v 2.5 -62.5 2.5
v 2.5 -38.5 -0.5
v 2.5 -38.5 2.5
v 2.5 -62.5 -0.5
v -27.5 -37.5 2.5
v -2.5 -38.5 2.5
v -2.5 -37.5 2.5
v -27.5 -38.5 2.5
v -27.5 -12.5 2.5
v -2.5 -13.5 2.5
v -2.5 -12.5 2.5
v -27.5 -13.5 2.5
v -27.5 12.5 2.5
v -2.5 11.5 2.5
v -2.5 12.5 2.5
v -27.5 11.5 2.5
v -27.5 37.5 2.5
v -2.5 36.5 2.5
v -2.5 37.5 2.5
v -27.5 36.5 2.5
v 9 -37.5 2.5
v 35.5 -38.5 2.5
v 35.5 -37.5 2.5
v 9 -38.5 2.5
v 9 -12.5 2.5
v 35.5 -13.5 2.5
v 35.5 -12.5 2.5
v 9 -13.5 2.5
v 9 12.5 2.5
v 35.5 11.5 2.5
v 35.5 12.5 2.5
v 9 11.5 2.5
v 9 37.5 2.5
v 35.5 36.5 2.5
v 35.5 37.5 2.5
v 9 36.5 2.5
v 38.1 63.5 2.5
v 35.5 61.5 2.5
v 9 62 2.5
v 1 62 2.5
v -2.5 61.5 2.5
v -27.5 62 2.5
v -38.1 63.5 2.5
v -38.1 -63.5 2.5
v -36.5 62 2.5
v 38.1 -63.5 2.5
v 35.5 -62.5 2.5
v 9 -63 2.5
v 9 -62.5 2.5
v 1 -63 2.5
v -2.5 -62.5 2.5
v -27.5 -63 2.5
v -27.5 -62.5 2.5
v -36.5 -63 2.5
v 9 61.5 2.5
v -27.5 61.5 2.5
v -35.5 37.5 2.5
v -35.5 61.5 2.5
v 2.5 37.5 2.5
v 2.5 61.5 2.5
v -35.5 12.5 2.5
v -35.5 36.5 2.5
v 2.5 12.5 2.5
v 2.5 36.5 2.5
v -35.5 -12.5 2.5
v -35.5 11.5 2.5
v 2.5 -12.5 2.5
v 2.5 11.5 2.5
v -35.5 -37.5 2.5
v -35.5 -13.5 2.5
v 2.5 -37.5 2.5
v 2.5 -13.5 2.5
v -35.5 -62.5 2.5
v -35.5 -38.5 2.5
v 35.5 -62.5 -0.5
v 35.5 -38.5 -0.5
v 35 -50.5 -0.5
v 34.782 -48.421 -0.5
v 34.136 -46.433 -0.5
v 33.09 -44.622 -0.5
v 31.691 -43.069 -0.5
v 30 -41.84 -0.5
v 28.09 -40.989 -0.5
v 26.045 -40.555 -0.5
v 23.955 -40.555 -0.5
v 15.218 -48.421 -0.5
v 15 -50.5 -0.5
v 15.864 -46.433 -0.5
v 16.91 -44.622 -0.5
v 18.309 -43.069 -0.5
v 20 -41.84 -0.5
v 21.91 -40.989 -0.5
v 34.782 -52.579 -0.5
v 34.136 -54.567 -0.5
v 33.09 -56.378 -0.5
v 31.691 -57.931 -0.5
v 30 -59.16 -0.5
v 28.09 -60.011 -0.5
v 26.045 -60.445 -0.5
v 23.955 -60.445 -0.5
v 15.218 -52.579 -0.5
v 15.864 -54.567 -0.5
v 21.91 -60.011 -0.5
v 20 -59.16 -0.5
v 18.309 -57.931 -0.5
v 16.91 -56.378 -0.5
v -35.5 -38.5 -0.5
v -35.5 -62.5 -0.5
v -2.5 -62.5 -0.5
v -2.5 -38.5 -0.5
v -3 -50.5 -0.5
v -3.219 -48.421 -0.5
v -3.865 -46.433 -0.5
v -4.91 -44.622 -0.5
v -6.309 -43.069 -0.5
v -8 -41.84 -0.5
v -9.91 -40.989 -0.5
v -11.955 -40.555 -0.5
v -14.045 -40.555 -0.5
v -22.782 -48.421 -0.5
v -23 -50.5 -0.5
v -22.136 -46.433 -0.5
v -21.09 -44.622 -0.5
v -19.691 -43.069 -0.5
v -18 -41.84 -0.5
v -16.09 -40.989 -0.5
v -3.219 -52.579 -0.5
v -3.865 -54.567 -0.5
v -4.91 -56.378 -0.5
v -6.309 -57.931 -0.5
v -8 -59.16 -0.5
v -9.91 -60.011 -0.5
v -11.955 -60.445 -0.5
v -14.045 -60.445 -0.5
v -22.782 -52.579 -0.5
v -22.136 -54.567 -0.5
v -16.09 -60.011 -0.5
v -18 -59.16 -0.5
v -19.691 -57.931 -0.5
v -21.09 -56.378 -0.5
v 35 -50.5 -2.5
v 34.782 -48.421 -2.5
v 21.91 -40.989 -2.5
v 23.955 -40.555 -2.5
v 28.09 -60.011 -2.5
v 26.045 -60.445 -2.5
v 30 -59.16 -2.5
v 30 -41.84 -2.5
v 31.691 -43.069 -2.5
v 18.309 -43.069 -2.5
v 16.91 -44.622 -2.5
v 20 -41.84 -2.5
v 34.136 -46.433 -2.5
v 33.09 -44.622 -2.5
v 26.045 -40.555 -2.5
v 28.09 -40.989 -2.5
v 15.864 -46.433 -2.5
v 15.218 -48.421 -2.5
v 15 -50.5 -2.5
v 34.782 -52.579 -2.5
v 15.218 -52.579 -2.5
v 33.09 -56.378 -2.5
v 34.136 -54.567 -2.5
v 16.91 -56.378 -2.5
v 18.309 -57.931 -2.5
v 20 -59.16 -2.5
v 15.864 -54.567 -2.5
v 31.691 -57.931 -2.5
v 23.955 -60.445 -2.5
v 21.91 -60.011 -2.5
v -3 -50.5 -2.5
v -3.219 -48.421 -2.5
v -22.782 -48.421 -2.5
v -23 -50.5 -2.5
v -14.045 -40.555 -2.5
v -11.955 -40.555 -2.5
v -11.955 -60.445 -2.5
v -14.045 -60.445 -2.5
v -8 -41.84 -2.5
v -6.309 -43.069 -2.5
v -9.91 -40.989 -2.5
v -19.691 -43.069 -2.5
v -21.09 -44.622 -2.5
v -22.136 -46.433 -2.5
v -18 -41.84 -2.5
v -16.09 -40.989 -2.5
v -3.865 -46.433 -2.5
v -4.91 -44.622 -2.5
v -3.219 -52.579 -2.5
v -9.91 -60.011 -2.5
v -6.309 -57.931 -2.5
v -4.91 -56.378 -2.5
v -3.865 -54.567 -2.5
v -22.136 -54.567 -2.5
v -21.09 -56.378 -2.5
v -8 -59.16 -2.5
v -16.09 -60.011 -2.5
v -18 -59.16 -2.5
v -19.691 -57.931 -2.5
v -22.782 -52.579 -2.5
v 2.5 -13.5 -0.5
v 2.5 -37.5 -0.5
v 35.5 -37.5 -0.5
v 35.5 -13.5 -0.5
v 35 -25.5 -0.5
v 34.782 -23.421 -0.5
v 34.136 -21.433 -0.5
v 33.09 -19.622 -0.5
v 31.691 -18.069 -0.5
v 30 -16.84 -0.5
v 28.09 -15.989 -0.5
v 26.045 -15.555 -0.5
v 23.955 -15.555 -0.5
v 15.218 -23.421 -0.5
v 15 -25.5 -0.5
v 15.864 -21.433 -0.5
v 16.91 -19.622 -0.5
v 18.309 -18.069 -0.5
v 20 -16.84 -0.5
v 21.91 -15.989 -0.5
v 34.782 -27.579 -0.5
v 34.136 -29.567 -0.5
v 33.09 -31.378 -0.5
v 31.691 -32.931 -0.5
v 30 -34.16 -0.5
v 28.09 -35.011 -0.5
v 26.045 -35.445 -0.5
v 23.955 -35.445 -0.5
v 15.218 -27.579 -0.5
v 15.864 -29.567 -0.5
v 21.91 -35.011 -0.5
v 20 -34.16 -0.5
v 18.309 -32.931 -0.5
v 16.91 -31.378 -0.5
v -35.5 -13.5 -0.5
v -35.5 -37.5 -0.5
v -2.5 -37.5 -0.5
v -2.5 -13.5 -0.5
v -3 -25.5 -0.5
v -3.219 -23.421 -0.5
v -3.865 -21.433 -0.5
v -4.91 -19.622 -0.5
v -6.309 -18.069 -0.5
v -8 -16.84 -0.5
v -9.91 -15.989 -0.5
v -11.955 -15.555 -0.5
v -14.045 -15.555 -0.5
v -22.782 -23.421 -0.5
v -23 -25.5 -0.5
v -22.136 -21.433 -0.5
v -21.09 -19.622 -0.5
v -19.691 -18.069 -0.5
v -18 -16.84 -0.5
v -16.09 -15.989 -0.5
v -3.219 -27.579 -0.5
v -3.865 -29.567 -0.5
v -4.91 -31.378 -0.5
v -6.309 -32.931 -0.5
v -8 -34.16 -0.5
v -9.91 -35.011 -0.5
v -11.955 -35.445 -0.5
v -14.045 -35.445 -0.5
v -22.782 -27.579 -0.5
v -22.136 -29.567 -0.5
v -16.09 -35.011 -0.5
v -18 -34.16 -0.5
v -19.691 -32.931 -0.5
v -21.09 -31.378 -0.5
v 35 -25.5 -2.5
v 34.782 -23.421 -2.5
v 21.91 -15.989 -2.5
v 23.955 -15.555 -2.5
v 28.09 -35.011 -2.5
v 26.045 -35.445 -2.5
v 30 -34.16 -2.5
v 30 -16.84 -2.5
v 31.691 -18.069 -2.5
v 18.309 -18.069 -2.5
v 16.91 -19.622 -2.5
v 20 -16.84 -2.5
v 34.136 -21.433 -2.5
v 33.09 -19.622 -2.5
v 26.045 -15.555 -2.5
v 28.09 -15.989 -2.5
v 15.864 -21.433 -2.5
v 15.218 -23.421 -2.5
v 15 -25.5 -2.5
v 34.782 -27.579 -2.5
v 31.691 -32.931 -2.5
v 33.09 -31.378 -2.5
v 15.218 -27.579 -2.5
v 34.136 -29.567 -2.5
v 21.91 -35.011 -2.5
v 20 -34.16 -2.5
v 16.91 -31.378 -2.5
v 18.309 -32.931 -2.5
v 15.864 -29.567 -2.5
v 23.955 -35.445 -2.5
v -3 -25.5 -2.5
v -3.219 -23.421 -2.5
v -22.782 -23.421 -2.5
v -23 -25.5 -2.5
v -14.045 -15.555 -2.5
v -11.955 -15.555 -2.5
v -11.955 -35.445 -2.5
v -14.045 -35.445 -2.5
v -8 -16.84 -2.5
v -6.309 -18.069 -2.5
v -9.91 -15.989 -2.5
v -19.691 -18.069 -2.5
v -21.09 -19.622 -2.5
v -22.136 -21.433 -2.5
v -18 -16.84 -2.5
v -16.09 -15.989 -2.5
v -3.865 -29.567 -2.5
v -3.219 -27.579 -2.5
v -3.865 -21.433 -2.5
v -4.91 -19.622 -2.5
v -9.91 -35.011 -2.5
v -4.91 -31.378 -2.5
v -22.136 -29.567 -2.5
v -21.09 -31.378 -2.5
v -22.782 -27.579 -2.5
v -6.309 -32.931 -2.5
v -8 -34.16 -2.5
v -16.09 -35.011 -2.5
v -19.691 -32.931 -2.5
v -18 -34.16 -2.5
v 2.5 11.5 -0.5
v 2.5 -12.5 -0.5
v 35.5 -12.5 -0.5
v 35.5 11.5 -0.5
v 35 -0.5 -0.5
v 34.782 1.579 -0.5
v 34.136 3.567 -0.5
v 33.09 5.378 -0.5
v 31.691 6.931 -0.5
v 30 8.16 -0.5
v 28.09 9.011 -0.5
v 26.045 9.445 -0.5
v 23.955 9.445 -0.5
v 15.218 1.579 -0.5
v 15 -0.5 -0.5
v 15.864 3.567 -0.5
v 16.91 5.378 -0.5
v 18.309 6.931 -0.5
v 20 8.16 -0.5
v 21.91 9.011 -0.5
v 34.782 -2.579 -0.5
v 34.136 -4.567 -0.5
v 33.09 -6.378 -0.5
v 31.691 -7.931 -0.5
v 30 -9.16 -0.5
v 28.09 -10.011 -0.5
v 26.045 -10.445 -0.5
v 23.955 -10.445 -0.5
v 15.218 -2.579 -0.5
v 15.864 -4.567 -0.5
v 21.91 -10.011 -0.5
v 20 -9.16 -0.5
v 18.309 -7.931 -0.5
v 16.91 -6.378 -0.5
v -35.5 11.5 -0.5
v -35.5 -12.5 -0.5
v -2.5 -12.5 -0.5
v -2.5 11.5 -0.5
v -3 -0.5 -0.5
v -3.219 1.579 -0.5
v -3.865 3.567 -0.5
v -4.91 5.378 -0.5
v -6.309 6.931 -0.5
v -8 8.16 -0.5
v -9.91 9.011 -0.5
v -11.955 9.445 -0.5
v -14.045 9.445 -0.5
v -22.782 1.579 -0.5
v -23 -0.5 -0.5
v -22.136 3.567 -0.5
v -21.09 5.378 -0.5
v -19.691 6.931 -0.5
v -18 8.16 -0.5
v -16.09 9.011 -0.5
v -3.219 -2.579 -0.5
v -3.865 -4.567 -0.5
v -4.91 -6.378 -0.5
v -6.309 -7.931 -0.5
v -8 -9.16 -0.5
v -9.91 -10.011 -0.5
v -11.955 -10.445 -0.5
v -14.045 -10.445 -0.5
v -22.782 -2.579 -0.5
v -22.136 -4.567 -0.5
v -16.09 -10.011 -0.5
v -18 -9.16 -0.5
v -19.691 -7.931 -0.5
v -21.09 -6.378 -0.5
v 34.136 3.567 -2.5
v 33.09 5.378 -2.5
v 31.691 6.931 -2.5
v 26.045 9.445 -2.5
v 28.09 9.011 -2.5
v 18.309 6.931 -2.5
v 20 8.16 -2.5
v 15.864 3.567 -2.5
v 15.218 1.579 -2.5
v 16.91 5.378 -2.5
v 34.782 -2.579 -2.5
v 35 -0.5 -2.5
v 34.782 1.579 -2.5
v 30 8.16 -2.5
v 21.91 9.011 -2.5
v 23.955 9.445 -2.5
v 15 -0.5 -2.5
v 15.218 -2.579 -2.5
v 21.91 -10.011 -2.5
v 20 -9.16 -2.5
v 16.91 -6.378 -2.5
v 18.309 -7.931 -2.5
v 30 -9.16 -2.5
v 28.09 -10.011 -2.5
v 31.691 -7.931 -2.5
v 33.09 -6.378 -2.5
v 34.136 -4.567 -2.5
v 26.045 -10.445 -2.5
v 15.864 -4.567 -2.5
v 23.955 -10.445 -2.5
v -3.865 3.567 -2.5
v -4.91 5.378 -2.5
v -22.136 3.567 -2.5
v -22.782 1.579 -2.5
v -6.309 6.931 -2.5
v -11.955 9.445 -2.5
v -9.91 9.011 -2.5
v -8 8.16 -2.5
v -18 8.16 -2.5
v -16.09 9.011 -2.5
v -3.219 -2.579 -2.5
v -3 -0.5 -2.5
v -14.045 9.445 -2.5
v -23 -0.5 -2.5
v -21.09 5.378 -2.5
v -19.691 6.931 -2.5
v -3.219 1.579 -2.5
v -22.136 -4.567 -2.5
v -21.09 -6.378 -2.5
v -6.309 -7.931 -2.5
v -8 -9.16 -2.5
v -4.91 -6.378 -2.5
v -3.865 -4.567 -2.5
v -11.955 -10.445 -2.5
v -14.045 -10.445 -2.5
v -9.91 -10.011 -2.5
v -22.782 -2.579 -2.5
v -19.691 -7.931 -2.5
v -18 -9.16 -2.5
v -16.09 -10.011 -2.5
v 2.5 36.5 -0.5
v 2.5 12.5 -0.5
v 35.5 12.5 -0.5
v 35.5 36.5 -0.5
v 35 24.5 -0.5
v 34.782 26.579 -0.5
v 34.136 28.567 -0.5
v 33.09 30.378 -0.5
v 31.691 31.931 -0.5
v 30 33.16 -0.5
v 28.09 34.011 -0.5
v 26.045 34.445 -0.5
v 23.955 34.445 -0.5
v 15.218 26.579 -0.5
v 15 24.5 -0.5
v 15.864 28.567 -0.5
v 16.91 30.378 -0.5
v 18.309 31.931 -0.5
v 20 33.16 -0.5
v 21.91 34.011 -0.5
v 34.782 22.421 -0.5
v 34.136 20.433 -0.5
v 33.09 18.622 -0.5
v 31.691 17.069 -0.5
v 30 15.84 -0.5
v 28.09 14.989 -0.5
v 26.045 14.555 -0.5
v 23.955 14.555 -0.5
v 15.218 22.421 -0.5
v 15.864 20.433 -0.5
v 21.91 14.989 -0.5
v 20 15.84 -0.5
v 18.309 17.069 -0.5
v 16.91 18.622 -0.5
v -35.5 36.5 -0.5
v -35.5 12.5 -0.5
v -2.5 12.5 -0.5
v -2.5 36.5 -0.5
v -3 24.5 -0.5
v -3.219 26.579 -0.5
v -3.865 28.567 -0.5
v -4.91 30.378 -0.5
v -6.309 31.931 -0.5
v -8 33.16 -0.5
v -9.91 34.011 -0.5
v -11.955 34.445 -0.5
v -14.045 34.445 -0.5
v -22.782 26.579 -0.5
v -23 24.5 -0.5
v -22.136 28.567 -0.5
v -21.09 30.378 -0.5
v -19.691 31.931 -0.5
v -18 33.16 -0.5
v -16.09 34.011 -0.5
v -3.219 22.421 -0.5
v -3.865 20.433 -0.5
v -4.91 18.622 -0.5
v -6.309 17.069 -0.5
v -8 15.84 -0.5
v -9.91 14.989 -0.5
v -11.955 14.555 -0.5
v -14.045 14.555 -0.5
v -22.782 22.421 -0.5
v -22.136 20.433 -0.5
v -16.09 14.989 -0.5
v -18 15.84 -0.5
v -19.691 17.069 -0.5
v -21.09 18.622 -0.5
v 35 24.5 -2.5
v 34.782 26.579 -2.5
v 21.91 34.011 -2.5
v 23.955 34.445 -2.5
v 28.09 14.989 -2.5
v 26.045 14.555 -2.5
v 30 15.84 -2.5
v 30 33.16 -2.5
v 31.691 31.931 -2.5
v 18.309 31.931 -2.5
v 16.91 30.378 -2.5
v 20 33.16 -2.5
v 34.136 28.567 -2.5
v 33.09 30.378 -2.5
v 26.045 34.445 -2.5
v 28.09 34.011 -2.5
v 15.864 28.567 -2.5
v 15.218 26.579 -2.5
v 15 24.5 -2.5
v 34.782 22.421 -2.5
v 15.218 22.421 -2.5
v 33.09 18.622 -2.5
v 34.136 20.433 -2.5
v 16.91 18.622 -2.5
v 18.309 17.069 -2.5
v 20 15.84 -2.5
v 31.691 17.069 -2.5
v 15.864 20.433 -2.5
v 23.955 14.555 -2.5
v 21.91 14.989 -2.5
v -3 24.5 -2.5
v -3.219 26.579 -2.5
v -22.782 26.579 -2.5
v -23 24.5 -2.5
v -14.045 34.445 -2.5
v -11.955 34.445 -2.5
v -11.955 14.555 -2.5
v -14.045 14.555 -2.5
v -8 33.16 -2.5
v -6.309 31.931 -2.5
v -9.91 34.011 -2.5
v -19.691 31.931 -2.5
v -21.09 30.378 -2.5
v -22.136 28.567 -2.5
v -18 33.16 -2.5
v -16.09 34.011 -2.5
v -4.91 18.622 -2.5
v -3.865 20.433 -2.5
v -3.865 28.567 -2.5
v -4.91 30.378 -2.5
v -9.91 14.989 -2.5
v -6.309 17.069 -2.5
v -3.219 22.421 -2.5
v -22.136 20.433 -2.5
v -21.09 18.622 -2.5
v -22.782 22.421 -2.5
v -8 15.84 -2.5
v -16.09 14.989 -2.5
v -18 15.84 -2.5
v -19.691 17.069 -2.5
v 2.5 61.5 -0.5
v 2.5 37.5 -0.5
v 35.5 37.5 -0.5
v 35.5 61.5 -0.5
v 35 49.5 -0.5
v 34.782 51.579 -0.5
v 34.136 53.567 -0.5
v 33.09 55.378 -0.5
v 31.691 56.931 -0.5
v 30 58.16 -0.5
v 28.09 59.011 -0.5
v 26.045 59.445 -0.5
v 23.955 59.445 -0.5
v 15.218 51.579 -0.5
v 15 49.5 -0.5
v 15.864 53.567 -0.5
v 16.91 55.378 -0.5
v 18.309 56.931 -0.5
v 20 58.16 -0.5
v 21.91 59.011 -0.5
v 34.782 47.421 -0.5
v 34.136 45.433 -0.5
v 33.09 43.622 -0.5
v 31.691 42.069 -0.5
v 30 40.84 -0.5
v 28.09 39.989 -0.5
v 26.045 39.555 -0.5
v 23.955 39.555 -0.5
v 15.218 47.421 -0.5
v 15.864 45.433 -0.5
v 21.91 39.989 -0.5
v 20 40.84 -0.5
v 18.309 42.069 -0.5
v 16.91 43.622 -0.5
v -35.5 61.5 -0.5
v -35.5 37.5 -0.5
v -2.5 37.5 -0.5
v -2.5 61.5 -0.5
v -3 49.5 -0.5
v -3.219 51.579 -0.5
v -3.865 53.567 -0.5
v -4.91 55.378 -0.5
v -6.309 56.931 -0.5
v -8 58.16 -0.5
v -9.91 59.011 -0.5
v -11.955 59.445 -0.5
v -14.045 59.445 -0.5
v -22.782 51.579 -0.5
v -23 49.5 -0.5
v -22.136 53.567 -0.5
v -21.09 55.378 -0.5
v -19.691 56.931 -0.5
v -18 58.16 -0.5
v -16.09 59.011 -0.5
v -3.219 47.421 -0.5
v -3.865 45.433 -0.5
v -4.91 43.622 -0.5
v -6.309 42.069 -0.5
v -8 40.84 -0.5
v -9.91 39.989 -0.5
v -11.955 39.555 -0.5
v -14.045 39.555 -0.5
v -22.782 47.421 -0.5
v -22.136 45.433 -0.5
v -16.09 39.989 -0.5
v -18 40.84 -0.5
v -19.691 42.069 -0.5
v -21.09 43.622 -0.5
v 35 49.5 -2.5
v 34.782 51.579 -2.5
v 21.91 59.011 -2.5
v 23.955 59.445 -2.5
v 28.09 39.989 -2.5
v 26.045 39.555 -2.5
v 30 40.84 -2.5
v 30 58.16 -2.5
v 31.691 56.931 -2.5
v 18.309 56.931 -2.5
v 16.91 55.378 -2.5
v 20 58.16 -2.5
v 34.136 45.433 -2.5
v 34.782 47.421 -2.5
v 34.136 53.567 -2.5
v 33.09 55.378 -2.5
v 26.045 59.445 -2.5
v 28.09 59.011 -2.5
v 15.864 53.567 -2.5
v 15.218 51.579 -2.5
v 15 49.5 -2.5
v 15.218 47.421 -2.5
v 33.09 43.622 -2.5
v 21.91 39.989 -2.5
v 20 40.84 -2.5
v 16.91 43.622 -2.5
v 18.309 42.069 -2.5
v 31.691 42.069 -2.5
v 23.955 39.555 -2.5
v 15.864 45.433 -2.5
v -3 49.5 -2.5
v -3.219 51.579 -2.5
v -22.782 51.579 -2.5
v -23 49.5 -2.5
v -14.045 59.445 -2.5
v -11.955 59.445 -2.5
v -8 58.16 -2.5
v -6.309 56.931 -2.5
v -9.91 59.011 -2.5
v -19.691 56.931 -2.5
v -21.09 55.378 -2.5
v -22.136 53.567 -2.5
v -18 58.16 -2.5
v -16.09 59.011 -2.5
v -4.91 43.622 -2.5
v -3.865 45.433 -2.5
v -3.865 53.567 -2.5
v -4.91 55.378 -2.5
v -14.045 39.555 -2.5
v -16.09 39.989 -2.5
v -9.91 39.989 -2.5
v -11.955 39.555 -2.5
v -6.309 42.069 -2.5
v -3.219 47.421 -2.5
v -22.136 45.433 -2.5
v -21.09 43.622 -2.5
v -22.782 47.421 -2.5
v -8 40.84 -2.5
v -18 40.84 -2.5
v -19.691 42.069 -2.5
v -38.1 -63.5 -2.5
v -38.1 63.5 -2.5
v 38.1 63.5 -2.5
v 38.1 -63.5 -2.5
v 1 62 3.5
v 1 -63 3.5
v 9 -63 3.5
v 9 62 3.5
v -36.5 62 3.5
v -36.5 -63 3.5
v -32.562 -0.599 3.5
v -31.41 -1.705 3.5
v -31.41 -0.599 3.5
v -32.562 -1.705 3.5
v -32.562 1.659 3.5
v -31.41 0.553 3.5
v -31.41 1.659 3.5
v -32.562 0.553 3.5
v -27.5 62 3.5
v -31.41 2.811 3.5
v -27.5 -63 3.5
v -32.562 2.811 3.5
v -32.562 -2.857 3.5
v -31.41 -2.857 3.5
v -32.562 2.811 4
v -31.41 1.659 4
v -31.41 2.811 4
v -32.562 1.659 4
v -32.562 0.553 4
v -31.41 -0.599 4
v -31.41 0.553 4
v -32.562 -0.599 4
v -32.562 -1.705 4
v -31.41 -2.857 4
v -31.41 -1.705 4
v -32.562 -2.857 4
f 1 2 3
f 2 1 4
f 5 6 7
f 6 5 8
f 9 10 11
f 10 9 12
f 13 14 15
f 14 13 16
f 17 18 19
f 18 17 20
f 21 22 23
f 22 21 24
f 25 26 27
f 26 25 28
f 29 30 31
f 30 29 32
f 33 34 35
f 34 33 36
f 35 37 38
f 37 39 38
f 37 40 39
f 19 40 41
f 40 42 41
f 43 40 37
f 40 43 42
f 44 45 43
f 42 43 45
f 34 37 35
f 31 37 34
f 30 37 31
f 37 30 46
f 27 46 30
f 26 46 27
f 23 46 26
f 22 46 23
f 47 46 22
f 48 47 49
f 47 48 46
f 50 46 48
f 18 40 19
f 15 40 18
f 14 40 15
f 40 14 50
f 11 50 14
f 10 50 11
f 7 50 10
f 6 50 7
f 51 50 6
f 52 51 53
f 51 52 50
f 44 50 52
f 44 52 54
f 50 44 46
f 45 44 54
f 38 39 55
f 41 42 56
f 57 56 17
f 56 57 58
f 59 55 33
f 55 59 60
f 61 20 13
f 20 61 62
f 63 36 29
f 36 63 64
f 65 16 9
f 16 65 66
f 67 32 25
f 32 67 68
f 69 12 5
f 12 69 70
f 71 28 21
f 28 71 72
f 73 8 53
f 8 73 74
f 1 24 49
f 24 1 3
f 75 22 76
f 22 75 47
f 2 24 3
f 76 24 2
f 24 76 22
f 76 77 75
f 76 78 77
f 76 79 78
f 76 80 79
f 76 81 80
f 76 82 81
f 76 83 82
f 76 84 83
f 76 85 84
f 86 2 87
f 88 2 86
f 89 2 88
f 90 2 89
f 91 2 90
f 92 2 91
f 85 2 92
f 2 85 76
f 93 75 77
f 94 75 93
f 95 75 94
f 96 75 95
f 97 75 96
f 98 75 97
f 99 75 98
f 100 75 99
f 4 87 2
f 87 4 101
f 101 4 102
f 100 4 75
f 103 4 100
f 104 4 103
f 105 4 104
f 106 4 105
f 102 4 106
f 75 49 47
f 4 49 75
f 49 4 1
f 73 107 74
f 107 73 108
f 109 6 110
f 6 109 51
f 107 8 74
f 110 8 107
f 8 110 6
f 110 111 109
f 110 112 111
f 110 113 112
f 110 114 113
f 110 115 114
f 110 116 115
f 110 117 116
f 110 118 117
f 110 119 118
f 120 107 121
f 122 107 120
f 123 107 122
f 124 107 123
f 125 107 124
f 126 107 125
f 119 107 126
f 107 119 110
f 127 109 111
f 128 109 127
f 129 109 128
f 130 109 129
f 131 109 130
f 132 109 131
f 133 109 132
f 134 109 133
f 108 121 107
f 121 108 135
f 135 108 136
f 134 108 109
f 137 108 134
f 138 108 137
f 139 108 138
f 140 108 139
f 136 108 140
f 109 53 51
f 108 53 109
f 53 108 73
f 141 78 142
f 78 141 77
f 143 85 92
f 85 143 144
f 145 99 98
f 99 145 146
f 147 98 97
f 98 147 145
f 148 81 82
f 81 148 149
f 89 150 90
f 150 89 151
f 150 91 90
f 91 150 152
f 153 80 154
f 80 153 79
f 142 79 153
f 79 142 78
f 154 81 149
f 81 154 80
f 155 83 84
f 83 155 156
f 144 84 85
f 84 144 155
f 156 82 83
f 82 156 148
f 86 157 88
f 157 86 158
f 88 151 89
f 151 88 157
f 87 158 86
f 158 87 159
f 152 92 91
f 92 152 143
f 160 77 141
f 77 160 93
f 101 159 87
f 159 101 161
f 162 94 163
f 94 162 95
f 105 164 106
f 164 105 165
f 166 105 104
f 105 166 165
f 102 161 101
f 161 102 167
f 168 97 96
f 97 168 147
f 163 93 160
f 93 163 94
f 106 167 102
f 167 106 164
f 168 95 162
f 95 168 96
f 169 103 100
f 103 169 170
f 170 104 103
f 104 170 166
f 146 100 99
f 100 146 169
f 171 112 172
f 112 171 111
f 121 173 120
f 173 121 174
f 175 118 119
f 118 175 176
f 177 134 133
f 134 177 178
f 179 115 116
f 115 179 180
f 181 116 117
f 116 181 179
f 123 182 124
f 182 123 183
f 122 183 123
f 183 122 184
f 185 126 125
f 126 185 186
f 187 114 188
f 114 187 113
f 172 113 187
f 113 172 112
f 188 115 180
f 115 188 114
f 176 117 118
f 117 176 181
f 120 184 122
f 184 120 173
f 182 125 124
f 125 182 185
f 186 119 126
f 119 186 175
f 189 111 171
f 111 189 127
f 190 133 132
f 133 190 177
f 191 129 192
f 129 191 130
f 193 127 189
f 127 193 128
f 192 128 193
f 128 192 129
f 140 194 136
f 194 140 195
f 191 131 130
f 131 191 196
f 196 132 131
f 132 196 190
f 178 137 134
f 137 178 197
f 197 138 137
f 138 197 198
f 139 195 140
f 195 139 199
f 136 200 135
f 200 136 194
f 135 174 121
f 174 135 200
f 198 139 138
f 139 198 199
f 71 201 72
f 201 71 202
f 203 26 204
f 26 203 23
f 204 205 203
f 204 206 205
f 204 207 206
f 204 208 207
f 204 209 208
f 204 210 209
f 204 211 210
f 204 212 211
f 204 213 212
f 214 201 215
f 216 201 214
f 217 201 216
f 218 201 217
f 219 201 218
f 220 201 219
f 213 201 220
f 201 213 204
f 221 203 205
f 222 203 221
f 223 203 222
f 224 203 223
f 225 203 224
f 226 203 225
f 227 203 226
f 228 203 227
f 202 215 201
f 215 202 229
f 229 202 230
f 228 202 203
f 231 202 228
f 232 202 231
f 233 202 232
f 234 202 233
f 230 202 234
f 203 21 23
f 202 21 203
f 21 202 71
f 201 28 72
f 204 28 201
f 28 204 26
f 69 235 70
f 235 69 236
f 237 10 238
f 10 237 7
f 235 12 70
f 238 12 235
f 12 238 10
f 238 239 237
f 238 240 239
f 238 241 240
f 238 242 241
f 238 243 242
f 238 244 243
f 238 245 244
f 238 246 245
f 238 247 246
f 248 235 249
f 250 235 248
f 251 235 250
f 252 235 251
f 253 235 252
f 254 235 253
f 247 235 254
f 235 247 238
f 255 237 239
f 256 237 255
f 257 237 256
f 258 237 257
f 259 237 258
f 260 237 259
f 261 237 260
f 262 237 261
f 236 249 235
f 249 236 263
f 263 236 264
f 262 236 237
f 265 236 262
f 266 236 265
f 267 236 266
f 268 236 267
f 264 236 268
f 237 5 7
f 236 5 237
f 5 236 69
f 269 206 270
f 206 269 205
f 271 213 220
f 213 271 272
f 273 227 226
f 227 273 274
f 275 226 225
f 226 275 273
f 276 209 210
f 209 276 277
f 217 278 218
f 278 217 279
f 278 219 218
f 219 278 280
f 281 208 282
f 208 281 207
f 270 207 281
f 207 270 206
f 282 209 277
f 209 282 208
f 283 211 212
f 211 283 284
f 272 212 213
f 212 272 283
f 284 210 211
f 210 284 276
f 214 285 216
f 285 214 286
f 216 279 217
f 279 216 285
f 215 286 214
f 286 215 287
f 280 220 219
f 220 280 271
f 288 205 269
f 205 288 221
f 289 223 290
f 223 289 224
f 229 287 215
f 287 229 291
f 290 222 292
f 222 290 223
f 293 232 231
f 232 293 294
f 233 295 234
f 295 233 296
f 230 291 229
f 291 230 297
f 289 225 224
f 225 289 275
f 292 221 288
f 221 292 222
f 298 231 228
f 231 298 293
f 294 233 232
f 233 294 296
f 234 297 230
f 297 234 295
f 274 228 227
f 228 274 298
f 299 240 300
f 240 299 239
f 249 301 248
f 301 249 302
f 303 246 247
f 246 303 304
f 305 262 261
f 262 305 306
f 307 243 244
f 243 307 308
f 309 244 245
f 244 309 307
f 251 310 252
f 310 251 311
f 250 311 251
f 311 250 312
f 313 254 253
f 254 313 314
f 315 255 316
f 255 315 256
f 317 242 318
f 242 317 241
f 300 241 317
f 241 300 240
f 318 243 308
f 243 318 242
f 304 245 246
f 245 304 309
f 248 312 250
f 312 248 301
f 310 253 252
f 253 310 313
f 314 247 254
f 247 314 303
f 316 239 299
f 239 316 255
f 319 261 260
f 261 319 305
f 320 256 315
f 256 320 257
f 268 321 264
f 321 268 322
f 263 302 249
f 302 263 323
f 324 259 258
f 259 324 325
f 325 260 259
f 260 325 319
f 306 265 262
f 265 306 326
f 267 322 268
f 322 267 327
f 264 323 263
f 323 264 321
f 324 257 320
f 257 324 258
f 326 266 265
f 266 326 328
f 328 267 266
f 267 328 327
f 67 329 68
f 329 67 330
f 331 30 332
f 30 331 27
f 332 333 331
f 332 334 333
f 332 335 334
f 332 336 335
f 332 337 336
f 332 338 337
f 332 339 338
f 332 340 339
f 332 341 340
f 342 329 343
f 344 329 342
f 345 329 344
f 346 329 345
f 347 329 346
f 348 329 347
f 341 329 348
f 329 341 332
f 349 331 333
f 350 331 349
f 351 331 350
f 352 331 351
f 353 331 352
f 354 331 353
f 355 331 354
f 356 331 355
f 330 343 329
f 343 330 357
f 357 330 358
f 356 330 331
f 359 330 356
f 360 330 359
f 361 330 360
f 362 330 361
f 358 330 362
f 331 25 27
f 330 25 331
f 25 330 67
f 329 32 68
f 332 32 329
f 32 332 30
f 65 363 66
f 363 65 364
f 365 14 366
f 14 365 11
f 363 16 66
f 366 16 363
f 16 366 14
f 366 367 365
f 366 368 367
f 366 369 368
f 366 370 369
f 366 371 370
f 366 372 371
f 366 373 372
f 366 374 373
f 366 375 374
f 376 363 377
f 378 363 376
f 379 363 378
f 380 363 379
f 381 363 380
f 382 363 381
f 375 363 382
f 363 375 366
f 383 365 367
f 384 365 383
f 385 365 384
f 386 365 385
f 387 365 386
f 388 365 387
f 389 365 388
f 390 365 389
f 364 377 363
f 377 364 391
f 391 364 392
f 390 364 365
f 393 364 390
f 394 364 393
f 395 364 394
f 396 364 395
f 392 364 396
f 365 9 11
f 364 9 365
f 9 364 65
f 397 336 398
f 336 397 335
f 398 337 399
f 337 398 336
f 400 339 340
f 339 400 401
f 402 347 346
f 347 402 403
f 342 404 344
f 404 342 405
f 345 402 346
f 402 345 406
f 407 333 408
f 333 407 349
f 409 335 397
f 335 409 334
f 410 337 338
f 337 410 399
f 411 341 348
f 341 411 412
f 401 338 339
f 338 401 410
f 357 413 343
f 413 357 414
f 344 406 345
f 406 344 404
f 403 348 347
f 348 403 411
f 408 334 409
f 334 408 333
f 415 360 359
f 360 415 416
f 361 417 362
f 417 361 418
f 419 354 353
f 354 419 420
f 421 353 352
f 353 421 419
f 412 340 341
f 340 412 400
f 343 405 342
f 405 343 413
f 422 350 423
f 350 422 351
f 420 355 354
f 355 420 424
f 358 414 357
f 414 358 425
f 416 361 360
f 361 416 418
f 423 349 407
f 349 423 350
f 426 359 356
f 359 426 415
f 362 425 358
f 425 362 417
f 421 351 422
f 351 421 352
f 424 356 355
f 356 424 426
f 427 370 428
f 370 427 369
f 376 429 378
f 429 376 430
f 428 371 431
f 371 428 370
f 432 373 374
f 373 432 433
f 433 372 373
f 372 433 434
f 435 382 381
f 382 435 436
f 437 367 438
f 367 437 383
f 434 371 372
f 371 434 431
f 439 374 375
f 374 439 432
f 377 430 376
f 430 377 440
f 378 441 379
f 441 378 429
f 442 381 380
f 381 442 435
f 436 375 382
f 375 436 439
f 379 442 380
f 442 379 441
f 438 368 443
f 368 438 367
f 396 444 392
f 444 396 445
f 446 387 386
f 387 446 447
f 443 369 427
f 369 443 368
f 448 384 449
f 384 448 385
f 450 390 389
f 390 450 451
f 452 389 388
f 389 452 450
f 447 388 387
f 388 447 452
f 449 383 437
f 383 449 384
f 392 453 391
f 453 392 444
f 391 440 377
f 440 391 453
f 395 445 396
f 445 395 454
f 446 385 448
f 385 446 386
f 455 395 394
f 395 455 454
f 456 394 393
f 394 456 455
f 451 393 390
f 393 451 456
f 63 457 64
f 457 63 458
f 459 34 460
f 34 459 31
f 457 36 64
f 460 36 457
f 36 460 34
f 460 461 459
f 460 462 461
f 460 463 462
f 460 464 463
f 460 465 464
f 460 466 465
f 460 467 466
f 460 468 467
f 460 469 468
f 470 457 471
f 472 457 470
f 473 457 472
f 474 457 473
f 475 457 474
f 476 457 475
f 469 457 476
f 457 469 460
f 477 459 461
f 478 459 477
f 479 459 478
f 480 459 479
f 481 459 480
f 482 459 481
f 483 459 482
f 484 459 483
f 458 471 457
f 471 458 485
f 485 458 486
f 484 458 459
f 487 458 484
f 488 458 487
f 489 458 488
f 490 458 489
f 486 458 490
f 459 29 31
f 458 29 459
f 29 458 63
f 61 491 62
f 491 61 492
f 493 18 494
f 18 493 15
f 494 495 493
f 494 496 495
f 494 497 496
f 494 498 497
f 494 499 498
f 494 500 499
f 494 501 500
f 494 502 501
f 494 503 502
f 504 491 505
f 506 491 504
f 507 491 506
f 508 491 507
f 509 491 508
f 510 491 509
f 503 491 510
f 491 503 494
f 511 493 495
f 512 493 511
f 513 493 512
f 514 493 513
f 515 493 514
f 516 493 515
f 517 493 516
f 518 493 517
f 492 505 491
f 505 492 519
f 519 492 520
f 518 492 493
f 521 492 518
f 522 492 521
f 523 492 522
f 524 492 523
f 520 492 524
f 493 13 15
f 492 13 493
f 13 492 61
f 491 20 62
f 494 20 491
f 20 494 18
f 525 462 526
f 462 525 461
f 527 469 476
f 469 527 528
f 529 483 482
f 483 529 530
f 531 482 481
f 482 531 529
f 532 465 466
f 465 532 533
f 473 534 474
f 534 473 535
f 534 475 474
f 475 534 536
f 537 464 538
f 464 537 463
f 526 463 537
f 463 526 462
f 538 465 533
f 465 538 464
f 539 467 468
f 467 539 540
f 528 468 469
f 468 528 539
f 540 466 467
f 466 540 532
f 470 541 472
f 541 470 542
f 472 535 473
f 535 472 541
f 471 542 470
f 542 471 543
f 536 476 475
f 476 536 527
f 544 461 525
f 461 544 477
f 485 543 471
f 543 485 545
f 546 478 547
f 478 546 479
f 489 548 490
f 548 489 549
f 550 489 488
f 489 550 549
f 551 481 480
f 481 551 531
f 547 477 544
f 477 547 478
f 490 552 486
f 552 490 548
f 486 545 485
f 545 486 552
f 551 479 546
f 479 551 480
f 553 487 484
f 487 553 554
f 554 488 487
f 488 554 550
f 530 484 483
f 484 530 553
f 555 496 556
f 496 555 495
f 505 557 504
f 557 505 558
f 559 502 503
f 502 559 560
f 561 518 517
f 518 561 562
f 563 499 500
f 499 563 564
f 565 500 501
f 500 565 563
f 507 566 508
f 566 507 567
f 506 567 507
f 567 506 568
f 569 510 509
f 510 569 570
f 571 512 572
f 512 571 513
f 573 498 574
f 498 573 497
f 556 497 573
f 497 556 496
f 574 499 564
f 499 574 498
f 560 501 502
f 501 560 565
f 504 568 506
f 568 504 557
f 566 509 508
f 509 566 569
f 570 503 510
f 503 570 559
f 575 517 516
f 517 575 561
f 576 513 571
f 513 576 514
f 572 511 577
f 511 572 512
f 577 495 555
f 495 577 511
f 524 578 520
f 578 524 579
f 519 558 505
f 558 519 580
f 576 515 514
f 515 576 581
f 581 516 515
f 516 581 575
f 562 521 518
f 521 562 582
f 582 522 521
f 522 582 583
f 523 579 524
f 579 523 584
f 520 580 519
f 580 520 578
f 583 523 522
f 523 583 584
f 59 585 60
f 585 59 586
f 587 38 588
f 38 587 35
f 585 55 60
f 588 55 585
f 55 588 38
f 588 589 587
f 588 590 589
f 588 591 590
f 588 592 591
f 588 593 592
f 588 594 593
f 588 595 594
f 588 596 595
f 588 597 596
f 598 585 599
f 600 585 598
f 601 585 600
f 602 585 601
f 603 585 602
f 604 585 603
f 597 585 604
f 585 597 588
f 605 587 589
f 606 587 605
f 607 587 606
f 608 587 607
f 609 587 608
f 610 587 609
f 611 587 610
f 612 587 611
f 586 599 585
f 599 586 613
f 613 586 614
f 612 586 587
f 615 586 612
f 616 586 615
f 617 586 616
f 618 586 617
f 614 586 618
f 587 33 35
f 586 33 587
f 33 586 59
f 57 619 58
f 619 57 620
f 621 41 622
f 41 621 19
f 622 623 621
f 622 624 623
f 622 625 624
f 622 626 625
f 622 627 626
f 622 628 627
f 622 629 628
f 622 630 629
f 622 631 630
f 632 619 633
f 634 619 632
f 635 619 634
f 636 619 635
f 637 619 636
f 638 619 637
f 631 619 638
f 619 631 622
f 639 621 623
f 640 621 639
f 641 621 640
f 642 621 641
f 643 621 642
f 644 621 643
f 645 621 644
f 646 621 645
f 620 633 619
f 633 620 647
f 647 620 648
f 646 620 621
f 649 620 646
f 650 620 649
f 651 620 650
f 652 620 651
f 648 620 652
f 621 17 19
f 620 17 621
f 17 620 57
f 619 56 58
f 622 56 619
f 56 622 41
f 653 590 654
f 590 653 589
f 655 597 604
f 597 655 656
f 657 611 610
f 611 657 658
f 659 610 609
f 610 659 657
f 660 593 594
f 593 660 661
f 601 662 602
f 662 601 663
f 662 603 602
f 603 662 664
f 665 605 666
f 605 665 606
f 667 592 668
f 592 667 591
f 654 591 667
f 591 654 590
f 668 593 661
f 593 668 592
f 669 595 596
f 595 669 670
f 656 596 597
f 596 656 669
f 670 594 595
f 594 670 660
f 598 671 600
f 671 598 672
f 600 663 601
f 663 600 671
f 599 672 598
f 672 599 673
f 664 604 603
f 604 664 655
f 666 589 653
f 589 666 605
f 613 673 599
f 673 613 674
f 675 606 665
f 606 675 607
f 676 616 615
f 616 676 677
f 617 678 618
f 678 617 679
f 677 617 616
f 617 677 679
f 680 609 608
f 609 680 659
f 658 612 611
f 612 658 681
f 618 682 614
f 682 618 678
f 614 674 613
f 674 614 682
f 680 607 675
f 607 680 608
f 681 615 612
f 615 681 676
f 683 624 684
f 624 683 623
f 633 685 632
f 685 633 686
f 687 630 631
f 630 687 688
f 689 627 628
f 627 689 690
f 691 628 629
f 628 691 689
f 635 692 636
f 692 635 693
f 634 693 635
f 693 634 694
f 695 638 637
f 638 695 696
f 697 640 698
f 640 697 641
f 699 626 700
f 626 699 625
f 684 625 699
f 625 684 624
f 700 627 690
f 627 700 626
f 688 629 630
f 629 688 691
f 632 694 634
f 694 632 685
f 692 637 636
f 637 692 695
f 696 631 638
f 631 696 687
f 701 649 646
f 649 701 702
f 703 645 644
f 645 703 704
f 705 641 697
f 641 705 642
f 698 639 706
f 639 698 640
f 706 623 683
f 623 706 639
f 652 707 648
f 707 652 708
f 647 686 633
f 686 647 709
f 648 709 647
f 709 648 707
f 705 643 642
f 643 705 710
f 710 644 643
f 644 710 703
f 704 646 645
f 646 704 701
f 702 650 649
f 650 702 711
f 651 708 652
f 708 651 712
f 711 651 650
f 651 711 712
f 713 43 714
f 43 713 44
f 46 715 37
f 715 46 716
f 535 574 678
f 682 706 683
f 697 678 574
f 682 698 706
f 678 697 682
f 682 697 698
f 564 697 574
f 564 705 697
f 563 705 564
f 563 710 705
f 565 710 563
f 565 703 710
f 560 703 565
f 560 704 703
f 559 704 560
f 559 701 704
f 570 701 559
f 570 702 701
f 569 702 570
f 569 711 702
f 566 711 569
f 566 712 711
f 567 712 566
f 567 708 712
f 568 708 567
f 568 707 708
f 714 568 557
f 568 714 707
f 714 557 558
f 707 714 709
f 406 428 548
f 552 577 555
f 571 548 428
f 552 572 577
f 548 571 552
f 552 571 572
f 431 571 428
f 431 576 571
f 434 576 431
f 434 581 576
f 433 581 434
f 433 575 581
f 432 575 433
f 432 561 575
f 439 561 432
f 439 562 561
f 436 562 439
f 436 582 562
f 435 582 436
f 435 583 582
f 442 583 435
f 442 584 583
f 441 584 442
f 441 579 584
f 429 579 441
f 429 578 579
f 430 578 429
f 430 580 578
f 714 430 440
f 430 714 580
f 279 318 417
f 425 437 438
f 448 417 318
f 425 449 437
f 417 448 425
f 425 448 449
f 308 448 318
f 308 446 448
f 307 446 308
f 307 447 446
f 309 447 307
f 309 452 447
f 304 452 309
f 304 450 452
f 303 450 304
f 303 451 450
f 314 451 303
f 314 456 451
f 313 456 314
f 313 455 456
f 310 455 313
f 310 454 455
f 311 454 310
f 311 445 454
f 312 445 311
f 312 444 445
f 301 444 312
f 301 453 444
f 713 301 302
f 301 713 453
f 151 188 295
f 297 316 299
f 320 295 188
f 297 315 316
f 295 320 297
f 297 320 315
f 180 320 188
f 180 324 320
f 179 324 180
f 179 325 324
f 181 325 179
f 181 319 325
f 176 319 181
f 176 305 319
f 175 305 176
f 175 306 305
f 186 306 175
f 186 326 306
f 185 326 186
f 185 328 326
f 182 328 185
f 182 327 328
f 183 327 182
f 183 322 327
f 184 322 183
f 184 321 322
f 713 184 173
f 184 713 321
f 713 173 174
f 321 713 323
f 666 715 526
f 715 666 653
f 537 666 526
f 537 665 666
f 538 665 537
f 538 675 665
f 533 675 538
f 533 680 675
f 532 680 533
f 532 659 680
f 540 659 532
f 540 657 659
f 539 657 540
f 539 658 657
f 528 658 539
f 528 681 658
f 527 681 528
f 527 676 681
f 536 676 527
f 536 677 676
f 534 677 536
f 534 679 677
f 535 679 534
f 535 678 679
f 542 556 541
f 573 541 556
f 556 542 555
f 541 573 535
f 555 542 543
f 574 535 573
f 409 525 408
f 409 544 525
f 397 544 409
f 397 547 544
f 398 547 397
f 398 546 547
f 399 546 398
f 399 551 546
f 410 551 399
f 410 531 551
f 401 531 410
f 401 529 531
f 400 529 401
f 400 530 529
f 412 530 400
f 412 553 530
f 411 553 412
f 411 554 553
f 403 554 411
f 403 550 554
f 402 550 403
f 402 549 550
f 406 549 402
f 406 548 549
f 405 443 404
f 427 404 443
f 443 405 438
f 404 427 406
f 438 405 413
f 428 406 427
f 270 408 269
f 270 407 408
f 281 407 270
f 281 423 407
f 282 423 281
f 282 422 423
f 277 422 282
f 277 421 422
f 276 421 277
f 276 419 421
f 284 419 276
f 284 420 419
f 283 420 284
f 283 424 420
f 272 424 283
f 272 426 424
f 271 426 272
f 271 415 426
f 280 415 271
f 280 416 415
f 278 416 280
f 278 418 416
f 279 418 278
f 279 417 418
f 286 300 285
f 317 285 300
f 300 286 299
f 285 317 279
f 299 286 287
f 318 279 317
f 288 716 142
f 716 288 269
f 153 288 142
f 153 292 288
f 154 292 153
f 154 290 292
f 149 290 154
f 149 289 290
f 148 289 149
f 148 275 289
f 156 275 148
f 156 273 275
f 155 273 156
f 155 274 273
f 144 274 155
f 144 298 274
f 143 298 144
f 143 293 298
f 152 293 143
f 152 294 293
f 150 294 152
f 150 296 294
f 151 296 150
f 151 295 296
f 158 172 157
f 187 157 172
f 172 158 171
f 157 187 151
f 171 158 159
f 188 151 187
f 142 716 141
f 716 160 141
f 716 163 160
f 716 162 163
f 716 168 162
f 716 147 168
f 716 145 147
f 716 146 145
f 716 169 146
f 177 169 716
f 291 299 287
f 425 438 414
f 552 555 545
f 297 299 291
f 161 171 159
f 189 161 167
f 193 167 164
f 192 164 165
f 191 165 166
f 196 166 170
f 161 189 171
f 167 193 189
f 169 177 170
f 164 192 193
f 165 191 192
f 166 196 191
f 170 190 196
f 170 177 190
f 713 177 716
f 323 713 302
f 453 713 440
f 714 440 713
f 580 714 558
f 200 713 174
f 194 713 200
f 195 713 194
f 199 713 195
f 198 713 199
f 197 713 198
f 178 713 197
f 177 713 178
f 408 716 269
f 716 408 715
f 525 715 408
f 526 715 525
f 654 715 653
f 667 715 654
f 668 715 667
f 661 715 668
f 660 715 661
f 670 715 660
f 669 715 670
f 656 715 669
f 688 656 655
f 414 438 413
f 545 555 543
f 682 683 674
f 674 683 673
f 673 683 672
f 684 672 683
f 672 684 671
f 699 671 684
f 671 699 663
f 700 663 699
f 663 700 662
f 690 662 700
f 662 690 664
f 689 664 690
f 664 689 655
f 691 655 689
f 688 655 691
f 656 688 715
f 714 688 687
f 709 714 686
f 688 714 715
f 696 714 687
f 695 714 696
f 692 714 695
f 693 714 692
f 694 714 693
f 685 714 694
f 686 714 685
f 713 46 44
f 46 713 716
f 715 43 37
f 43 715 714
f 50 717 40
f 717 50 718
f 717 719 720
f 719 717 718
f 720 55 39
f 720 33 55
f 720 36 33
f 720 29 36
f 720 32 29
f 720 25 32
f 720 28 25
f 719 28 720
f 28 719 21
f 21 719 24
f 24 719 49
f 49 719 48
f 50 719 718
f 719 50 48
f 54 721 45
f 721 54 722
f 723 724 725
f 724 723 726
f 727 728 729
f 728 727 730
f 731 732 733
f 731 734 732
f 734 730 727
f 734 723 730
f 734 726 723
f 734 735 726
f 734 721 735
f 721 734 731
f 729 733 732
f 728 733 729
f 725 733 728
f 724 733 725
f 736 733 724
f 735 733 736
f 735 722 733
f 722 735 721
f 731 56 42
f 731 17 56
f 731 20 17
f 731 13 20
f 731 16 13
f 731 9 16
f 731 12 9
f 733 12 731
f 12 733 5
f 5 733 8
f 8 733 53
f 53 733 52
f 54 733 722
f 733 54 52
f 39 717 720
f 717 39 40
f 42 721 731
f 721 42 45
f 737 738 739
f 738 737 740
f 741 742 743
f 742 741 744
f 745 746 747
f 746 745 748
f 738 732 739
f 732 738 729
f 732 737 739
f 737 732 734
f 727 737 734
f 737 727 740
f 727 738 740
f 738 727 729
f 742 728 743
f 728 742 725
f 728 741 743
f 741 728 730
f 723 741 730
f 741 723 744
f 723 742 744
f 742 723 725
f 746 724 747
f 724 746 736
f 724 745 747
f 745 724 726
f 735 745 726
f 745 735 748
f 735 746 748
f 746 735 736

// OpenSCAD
/* SD Card dim is 32x24x3 */
/* Biz Card dim is 51x89x0.5 */

sim_height = 32;
sim_width = 24;
text = "...";
font = "Arial:style=Bold";


letter_size = 6;
letter_height = 1.5;

module letter(l) {
  // Use linear_extrude() to make the letters 3D objects as they
  // are only 2D shapes when only using text()
  linear_extrude(height = letter_height) {
    text(l, size = letter_size, font = font, halign = "center", valign = "center", $fn = 16);
  }
}

union()
{
difference()
{
    cube([25.4*3, 25.4*5, 5], center=true);
    for(i=[0:sim_width+1:120])
    {    
        translate([19,i-(25.4*5/2)+13, 1]) cube([sim_height + 1, sim_width, 3], center=true);
        translate([-19,i-(25.4*5/2)+13, 1]) cube([sim_height + 1, sim_width, 3], center=true);
        translate([25,i-(25.4*5/2)+13, -1])  cylinder(d=20,h=5, center=true);
        translate([-13,i-(25.4*5/2)+13, -1]) cylinder(d=20,h=5, center=true);

    }
    
    
    //translate([19,4, 0]) cube([sim_height + 3, 24*5, 3], center=true);
    //translate([19,4,2]) cube([sim_height - 2, 24*5, 2], center=true);
    //translate([-19,4, 0]) cube([sim_height + 3, 24*5, 3], center=true);
    //translate([-19,4,2]) cube([sim_height - 2, 24*5, 2], center=true);
    
}
    for(i=[0:sim_width+1:120])
    {    
        translate([5,i-(25.4*5/2)+13, 3]) cube([sim_height/4, sim_width+1, 1], center=true);
        translate([-32,i-(25.4*5/2)+13, 3]) cube([sim_height/4 + 1, sim_width+1, 1], center=true);
    }
    
    rotate([0,0,-90]) translate([0,-32,2.5]) letter(text);
  
}
